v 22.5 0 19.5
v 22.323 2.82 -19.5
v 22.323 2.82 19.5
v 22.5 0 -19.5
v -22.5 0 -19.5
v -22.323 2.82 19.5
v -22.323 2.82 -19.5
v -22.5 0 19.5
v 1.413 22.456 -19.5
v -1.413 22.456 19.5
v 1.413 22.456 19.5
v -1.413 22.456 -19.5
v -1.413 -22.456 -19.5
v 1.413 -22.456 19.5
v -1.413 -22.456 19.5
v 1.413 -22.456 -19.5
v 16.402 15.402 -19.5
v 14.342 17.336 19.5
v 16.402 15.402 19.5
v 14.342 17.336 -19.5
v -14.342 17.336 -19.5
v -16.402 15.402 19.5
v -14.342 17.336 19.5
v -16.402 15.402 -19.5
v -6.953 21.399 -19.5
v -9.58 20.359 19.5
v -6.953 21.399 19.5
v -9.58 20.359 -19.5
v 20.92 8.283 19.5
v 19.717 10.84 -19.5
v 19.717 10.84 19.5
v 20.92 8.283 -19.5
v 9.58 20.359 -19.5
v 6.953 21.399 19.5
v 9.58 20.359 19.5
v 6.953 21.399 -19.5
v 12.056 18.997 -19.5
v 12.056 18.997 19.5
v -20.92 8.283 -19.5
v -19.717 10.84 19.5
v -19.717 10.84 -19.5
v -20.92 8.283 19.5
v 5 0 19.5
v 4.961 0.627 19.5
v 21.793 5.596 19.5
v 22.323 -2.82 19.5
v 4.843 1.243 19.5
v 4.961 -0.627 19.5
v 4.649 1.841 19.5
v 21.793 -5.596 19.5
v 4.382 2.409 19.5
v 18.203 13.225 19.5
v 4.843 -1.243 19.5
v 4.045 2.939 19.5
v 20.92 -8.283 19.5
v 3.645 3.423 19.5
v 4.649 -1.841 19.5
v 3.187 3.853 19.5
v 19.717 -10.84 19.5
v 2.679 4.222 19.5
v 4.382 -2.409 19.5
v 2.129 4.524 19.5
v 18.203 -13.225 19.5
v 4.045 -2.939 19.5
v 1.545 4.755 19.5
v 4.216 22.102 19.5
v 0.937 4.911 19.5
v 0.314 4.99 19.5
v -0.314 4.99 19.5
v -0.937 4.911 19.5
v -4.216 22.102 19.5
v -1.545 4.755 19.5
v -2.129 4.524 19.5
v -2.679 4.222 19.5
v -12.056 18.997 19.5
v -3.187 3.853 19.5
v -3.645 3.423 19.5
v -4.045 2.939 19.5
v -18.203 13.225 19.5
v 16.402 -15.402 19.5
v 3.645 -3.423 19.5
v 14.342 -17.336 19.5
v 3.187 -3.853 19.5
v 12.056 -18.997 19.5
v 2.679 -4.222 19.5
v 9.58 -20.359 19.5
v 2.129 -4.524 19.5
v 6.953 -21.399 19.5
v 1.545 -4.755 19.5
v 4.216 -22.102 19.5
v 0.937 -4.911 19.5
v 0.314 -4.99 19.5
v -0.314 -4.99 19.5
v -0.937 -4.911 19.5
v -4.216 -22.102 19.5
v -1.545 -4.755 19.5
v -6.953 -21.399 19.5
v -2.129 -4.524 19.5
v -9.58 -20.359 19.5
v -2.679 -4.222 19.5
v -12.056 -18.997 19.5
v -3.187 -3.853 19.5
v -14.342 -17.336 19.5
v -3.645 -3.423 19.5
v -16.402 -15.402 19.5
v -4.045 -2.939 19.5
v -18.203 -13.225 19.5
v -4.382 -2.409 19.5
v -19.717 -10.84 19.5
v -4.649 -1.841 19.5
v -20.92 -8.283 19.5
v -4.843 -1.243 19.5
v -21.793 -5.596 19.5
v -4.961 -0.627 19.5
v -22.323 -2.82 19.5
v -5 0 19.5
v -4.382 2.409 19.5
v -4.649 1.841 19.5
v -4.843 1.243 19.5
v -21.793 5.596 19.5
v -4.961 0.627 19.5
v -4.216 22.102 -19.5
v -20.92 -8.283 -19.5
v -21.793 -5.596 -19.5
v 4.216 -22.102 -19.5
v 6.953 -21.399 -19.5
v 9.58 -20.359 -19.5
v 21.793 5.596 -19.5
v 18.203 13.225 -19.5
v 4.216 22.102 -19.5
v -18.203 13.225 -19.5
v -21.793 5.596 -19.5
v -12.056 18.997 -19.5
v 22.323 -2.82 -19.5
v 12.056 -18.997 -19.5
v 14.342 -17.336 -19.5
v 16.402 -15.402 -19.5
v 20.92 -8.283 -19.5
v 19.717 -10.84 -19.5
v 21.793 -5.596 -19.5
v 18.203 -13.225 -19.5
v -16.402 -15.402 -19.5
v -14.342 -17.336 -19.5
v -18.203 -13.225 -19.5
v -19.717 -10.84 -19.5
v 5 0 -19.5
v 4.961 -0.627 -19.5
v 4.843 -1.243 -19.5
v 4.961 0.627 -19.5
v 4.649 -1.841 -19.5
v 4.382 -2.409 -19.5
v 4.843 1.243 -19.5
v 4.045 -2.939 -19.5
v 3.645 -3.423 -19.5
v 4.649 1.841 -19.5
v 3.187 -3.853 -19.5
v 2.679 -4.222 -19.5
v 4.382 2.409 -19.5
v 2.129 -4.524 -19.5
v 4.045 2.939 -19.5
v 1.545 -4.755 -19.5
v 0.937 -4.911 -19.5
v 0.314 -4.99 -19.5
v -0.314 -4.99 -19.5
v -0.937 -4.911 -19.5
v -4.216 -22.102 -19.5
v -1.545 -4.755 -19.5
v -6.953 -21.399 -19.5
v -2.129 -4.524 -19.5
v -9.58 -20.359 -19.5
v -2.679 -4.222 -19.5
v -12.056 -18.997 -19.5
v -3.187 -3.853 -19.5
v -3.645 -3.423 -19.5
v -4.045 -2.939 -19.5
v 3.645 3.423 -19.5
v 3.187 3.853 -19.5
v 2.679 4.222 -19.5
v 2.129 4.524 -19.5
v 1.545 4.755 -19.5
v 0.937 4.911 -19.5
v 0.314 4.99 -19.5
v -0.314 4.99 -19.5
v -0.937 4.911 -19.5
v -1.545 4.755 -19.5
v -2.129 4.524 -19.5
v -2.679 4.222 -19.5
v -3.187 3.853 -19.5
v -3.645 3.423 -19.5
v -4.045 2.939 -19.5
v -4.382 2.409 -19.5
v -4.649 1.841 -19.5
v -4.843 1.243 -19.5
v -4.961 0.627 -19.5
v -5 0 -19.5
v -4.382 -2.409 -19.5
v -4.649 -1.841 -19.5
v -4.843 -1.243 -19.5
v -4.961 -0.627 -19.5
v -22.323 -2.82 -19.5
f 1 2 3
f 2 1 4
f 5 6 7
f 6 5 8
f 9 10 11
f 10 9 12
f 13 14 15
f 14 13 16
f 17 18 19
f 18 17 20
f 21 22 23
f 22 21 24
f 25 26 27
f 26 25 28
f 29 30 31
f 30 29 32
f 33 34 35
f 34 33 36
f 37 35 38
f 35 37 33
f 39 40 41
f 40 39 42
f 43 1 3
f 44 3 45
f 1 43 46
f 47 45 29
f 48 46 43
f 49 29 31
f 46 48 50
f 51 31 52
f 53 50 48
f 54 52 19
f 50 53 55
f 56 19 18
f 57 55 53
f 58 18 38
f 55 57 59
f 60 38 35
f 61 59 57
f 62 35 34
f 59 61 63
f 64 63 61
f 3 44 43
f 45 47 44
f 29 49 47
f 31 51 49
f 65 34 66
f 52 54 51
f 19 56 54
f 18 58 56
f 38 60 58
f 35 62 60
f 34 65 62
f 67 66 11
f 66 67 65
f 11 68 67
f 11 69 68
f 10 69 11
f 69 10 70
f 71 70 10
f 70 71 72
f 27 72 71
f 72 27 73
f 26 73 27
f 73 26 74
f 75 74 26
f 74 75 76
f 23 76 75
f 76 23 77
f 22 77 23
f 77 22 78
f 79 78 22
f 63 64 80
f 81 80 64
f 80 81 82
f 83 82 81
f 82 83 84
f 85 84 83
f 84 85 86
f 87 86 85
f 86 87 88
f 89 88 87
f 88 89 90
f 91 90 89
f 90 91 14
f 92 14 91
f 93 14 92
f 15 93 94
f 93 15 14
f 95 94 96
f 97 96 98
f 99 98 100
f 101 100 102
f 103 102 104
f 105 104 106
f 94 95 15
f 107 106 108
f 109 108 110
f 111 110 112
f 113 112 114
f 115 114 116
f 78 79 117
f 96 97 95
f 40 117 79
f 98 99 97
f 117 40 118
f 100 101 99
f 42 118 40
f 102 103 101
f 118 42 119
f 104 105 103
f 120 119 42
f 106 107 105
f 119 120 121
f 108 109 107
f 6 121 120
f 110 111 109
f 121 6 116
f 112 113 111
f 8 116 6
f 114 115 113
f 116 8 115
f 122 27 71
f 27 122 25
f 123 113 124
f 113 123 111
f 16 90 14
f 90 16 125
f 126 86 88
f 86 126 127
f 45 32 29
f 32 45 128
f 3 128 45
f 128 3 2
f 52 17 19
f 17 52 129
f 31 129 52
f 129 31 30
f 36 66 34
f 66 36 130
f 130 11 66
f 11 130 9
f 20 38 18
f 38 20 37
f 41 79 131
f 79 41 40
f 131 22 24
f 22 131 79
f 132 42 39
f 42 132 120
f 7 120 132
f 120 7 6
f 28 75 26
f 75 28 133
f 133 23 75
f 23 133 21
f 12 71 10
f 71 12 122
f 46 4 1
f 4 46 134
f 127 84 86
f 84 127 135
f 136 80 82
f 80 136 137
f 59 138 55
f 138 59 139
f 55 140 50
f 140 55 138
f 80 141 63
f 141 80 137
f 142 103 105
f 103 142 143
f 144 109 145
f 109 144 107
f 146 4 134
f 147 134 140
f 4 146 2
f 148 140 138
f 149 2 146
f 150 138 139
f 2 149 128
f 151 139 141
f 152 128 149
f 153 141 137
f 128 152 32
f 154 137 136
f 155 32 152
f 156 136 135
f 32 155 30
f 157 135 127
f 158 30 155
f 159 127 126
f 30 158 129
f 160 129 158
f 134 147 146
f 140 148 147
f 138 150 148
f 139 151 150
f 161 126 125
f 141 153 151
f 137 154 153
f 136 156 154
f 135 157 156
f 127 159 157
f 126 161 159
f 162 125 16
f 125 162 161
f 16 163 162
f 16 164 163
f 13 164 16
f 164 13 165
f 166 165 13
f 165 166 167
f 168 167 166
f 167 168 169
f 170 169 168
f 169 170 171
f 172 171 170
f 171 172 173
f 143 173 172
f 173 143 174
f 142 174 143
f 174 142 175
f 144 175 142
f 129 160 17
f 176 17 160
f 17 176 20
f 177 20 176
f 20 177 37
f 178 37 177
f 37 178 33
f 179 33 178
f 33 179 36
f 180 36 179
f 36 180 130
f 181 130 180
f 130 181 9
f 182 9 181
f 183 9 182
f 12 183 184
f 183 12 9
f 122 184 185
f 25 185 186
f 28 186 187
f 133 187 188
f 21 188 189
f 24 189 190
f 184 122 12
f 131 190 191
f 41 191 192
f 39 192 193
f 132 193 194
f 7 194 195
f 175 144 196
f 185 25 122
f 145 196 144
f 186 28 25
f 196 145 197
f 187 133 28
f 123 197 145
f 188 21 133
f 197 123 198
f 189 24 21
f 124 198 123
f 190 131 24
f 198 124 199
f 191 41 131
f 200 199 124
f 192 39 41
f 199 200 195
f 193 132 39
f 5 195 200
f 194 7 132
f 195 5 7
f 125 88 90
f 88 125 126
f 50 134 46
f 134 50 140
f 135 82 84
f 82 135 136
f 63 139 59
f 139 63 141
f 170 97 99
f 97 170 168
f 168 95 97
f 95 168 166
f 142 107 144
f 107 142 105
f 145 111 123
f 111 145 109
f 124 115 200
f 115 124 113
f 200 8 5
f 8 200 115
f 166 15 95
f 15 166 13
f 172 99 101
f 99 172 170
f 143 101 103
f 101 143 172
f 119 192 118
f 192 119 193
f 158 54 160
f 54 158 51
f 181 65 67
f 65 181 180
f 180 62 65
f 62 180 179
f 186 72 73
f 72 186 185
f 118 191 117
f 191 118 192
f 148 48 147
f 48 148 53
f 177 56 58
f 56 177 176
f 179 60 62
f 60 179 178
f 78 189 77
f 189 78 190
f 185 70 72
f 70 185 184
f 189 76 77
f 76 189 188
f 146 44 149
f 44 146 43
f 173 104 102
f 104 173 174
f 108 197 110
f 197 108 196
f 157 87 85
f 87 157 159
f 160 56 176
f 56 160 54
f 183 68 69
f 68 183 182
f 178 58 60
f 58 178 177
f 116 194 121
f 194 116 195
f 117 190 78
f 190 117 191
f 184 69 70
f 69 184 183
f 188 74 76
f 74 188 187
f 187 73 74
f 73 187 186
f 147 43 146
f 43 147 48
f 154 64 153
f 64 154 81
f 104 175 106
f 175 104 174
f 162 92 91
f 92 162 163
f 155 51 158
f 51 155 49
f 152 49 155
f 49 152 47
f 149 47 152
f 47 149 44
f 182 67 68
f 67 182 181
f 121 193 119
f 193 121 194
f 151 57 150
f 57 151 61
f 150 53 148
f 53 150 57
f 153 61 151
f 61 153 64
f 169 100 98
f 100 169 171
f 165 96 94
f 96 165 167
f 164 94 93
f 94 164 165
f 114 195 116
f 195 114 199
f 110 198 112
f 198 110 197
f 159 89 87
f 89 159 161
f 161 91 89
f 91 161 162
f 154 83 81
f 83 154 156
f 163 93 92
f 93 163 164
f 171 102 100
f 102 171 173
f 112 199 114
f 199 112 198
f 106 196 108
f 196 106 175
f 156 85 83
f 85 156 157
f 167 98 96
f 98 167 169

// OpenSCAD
$fn = 50;


difference() {
	union() {
		translate(v = [0, 0, -19.5000000000]) {
			cylinder(h = 39, r = 22.5000000000);
		}
	}
	union() {
		translate(v = [0, 0, -100.0000000000]) {
			cylinder(h = 200, r = 5);
		}
	}
}
